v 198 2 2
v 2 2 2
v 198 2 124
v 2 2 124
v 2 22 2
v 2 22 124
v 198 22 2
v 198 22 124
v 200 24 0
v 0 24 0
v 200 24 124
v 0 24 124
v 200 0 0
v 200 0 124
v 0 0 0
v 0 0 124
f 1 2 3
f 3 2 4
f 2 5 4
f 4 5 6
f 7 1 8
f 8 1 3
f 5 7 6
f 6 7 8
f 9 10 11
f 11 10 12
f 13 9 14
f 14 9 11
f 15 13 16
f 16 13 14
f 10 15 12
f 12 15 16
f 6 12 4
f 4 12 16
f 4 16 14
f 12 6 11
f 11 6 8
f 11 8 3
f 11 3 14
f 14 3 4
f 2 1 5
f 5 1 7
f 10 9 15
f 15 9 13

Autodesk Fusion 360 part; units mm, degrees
sketch "Skizze1" plane through (0, 0, 0) normal (0, 0, 1) x (1, 0, 0)
  line L0 (0, 0) -> (200, 0)
  line L1 (200, 0) -> (200, 24)
  line L2 (200, 24) -> (0, 24)
  line L3 (0, 24) -> (0, 0)
  line L4 (2, 2) -> (198, 2)
  line L5 (198, 2) -> (198, 22)
  line L6 (198, 22) -> (2, 22)
  line L7 (2, 22) -> (2, 2)
  dimension "d1" = 200
  dimension "d2" = 24
extrude "Extrusion1" add sketch "Skizze1" along normal blind 2 contours L4 L5 L6 L7
extrude "Extrusion2" add sketch "Skizze1" along normal blind 124
